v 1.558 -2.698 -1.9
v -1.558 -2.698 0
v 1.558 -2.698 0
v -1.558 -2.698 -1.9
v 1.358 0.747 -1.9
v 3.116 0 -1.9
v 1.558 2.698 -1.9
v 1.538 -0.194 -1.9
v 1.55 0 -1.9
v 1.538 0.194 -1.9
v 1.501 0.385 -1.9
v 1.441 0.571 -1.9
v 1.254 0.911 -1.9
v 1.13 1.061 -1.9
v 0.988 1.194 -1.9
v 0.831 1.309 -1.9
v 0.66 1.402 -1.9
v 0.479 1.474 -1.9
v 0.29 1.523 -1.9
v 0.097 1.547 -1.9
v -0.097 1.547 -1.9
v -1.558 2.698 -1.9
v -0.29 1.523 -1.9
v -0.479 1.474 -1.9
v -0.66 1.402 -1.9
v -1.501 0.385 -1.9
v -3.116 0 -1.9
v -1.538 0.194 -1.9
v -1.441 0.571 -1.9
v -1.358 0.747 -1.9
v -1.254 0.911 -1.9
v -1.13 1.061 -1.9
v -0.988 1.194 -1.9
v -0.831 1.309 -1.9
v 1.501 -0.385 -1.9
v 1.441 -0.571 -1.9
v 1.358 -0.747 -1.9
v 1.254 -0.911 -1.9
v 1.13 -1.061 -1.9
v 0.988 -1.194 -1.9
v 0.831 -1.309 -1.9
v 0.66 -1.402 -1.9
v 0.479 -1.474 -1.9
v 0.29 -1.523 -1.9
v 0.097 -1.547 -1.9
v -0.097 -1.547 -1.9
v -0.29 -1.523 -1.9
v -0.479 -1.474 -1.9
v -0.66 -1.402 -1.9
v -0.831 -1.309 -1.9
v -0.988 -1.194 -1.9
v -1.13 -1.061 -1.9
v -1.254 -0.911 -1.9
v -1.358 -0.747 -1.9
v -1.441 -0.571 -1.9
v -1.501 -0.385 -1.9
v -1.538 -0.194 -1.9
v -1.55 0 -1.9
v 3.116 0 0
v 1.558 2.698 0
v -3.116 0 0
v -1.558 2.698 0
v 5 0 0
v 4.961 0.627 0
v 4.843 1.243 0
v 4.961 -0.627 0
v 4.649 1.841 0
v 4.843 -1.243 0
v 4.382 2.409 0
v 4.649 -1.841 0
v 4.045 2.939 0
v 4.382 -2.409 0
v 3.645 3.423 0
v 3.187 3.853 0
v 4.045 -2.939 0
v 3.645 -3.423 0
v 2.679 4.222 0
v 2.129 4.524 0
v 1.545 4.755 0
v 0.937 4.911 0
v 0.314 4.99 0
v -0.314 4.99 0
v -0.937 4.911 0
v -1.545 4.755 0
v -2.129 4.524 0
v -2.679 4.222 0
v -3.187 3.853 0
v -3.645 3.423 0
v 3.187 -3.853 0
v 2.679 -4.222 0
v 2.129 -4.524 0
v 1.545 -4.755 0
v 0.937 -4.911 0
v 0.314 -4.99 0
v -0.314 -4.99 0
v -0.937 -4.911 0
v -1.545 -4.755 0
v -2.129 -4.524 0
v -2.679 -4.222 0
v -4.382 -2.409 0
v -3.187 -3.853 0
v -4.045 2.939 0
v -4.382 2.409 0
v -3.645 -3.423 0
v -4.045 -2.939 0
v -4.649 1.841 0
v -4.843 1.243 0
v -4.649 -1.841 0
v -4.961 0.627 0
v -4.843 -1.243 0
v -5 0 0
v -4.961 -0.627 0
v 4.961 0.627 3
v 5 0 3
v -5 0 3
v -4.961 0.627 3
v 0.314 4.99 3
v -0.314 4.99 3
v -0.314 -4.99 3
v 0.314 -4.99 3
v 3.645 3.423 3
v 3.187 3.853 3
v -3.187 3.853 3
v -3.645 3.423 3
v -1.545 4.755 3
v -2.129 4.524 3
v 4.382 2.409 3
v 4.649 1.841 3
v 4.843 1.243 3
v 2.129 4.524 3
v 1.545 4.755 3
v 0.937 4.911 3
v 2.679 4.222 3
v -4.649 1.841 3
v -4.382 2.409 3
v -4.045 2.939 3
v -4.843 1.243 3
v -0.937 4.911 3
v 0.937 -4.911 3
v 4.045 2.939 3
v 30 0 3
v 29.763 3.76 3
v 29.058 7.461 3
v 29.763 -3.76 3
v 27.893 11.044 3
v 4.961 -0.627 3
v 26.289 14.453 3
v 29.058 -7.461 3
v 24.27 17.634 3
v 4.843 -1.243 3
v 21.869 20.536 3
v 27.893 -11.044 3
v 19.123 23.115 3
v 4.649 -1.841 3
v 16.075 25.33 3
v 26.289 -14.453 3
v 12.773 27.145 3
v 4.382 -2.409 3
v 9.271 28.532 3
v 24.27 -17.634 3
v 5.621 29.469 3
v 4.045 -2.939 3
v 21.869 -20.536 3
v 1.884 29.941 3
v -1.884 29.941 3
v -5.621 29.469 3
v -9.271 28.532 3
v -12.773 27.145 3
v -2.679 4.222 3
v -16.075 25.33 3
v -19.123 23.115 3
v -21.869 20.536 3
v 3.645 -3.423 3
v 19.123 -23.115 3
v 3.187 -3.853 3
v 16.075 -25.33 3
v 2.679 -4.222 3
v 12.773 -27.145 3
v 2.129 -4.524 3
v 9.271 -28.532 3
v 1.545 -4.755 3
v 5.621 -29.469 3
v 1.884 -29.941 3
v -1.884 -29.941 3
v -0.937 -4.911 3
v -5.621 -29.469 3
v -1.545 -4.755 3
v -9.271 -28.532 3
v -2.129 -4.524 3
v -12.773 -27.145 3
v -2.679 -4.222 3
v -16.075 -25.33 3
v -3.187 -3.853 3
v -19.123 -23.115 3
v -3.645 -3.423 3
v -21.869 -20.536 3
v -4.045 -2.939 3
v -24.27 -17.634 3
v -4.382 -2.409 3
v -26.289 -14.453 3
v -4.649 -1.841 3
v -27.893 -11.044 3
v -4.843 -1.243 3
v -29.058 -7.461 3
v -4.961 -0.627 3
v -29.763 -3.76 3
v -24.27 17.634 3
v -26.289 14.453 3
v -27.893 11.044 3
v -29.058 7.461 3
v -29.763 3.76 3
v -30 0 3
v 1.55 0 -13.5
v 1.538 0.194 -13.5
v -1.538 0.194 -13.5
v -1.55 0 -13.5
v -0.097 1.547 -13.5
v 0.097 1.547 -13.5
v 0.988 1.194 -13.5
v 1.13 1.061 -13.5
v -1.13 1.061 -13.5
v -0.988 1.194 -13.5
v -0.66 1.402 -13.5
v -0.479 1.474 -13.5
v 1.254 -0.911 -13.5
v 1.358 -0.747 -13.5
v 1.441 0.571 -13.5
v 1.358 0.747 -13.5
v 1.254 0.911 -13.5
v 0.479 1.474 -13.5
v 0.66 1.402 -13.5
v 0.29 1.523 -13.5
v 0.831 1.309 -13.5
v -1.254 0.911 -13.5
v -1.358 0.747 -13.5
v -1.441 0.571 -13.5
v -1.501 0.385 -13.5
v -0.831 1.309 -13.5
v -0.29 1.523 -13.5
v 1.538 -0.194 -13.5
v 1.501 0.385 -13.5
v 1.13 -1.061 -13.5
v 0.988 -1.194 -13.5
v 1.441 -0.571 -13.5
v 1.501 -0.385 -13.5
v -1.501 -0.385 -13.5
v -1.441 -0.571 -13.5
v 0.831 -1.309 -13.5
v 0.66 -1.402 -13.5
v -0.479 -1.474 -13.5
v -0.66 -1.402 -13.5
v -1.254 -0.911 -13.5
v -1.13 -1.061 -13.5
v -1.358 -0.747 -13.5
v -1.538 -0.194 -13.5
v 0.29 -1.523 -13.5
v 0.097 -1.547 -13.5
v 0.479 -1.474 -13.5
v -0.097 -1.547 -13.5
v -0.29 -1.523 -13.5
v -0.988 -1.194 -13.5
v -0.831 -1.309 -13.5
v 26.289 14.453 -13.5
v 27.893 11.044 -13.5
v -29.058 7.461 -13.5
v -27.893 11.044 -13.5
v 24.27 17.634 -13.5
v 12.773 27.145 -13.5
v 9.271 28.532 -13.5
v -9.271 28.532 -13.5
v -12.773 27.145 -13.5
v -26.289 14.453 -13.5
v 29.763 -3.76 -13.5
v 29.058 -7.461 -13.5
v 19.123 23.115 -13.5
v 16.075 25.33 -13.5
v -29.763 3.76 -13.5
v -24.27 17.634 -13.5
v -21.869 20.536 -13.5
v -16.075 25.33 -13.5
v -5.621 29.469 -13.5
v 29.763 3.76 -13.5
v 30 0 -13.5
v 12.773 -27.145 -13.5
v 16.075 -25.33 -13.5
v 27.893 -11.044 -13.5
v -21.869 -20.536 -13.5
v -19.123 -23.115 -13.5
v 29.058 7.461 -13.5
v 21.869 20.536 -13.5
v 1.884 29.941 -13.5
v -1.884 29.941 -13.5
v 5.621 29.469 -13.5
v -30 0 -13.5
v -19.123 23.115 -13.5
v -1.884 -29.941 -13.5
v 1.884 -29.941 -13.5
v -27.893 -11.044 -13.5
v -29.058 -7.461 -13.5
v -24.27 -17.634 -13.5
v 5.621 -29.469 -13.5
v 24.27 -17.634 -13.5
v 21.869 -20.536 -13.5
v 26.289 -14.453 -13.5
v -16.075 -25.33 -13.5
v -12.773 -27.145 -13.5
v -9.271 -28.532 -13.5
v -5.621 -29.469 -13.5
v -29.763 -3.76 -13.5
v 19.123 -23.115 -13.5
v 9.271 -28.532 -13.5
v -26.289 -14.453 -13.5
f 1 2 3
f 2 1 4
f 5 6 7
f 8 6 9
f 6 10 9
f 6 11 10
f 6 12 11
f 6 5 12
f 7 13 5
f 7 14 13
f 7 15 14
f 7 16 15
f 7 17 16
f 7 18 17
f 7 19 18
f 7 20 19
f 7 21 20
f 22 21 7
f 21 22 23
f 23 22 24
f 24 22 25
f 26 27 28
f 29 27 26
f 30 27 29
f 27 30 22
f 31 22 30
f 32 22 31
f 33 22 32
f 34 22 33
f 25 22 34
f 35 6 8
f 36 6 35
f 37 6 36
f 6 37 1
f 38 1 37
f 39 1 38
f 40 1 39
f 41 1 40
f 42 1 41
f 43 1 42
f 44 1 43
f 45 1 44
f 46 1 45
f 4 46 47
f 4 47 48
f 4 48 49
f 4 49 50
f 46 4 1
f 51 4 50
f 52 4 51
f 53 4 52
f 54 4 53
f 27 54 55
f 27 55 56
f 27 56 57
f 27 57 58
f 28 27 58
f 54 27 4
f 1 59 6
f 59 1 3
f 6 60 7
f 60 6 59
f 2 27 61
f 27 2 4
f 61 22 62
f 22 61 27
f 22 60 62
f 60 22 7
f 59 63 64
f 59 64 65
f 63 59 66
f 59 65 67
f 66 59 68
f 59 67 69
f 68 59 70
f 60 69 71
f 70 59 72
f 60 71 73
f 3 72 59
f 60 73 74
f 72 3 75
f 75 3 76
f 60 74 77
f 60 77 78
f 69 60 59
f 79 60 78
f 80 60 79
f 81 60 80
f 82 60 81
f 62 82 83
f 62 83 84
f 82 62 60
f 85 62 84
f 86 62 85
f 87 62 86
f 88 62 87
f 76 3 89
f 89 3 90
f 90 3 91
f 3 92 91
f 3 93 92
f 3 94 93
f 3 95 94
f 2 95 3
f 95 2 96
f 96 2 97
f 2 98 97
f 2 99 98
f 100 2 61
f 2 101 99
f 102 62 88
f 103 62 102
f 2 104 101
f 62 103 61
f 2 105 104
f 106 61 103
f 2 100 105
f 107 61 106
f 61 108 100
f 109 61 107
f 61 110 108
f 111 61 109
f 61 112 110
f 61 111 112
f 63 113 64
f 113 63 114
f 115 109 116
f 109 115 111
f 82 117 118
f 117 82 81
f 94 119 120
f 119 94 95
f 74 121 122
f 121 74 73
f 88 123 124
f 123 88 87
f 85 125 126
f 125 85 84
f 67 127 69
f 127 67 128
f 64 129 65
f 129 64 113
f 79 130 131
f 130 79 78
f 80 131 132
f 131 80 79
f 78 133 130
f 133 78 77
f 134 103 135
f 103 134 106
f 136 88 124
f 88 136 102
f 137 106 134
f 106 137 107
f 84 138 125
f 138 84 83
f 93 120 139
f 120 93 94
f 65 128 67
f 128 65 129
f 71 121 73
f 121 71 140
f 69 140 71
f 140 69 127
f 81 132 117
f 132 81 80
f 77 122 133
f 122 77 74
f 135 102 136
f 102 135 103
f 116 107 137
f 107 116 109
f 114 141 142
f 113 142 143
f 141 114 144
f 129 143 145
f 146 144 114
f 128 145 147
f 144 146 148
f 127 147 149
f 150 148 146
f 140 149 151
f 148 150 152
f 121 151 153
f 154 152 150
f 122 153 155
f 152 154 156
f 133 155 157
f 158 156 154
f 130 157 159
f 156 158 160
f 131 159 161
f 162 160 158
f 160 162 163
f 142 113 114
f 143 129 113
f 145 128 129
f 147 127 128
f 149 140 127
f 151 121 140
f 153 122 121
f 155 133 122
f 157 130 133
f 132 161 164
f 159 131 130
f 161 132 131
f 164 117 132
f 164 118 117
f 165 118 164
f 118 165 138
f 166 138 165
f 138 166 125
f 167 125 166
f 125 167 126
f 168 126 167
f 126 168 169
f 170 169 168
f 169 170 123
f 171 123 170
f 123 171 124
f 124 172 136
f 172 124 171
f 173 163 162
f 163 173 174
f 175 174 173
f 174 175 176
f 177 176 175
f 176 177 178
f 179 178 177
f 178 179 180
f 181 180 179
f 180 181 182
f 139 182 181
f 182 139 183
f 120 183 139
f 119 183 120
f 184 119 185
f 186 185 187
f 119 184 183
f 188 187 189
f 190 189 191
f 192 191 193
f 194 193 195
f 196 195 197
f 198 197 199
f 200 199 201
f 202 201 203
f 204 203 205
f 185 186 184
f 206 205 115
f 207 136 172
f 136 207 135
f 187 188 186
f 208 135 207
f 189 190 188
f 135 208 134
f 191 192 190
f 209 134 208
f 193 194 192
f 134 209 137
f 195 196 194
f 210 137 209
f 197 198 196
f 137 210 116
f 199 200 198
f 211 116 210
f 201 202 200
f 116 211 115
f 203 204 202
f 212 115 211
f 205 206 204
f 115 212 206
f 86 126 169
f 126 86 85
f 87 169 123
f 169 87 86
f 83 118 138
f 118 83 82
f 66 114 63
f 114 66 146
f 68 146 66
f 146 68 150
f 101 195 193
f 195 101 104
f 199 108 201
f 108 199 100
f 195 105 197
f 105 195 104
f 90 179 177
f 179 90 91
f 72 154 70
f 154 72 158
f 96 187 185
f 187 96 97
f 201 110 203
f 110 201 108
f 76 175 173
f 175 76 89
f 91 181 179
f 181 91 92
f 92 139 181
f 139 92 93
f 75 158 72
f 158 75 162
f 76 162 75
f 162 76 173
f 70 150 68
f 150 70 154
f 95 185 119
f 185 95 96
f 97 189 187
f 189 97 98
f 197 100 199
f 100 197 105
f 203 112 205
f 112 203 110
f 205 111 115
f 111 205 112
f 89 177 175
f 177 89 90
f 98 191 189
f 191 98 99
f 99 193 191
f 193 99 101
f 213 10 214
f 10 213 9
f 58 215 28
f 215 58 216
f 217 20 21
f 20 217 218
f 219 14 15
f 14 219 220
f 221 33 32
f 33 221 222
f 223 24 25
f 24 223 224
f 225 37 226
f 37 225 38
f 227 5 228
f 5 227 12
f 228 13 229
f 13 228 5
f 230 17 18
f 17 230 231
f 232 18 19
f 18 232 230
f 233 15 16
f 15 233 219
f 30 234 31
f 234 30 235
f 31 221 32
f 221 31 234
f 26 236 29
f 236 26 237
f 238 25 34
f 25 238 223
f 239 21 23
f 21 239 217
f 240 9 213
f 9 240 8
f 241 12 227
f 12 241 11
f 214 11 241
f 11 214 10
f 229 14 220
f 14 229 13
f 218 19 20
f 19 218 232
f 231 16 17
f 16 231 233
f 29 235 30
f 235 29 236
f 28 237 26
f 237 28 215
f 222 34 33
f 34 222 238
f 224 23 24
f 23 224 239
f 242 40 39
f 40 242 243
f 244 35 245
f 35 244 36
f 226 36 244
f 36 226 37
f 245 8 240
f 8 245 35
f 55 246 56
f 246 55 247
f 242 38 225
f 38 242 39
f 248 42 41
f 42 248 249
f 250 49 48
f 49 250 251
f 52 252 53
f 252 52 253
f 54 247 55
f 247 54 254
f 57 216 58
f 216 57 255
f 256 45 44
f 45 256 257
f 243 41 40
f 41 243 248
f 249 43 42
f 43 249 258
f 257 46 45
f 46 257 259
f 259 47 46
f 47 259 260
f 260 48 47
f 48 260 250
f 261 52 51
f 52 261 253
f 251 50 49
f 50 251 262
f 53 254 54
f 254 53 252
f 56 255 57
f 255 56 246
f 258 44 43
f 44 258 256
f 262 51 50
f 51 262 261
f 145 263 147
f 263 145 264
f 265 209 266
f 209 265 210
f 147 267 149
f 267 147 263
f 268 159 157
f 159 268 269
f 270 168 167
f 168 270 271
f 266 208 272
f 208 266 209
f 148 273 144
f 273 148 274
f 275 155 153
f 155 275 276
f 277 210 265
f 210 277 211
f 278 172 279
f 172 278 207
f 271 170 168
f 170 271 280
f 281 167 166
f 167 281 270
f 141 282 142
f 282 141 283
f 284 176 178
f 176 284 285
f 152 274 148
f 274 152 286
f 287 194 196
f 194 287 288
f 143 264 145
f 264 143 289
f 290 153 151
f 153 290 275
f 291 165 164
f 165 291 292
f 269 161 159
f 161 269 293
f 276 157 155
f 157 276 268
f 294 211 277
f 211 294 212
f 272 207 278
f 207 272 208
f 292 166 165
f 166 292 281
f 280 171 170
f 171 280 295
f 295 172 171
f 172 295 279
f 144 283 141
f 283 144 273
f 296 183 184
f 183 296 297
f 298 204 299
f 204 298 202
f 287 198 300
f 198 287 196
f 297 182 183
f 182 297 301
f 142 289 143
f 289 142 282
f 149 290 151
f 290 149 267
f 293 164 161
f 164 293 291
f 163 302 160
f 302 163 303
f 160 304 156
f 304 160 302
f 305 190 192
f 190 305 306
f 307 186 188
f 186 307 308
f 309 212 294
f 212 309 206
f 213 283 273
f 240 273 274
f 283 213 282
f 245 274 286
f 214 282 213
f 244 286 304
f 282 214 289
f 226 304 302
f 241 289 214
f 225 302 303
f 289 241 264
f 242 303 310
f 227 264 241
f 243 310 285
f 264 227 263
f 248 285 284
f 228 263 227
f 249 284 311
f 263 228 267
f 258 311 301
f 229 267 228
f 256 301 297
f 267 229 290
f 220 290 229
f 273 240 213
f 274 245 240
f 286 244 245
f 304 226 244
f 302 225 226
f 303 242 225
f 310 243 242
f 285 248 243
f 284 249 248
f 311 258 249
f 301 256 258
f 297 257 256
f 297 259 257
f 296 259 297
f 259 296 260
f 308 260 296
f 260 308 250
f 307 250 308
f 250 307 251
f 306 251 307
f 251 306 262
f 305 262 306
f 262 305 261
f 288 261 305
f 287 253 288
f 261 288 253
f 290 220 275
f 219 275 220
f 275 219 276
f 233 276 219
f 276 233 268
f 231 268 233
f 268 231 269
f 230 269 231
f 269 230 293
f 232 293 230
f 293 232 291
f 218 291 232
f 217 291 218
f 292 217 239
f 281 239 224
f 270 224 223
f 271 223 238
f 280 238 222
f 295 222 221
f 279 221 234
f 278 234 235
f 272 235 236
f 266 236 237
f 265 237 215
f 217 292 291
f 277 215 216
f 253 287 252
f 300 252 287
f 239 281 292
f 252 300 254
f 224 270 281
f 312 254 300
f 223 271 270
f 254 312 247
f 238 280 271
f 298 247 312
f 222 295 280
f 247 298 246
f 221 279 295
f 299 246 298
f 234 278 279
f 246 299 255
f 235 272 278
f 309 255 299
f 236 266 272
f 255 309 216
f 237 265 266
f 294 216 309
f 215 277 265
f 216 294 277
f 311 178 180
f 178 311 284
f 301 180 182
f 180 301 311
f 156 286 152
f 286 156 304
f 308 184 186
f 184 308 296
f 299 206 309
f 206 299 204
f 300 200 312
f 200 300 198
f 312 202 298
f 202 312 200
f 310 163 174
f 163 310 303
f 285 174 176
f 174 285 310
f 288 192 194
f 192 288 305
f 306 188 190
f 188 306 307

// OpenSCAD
$fn = 50;

difference() {
	union() {
		translate(v = [0, 0, -13.5]) {
			cylinder(h = 16.5, r = 30.0);
		}
	}
	union() {
		translate(v = [0, 0, 0]) {
			rotate(a = [0, 0, 0]) {
				difference() {
					union() {
						translate(v = [0, 0, -1.9]) {
							linear_extrude(height = 1.9) {
								polygon(points = [[3.1158, 0.0], [1.5579000000000005, 2.698361953111554], [-1.5578999999999994, 2.6983619531115544], [-3.1158, 3.815754496783323e-16], [-1.5579000000000014, -2.6983619531115535], [1.557899999999998, -2.6983619531115552]]);
							}
						}
					}
					union();
				}
			}
		}
		#cylinder(h = 3, r = 5.0);
		#translate(v = [0, 0, -100.0]) {
			cylinder(h = 200, r = 1.55);
		}
	}
}
